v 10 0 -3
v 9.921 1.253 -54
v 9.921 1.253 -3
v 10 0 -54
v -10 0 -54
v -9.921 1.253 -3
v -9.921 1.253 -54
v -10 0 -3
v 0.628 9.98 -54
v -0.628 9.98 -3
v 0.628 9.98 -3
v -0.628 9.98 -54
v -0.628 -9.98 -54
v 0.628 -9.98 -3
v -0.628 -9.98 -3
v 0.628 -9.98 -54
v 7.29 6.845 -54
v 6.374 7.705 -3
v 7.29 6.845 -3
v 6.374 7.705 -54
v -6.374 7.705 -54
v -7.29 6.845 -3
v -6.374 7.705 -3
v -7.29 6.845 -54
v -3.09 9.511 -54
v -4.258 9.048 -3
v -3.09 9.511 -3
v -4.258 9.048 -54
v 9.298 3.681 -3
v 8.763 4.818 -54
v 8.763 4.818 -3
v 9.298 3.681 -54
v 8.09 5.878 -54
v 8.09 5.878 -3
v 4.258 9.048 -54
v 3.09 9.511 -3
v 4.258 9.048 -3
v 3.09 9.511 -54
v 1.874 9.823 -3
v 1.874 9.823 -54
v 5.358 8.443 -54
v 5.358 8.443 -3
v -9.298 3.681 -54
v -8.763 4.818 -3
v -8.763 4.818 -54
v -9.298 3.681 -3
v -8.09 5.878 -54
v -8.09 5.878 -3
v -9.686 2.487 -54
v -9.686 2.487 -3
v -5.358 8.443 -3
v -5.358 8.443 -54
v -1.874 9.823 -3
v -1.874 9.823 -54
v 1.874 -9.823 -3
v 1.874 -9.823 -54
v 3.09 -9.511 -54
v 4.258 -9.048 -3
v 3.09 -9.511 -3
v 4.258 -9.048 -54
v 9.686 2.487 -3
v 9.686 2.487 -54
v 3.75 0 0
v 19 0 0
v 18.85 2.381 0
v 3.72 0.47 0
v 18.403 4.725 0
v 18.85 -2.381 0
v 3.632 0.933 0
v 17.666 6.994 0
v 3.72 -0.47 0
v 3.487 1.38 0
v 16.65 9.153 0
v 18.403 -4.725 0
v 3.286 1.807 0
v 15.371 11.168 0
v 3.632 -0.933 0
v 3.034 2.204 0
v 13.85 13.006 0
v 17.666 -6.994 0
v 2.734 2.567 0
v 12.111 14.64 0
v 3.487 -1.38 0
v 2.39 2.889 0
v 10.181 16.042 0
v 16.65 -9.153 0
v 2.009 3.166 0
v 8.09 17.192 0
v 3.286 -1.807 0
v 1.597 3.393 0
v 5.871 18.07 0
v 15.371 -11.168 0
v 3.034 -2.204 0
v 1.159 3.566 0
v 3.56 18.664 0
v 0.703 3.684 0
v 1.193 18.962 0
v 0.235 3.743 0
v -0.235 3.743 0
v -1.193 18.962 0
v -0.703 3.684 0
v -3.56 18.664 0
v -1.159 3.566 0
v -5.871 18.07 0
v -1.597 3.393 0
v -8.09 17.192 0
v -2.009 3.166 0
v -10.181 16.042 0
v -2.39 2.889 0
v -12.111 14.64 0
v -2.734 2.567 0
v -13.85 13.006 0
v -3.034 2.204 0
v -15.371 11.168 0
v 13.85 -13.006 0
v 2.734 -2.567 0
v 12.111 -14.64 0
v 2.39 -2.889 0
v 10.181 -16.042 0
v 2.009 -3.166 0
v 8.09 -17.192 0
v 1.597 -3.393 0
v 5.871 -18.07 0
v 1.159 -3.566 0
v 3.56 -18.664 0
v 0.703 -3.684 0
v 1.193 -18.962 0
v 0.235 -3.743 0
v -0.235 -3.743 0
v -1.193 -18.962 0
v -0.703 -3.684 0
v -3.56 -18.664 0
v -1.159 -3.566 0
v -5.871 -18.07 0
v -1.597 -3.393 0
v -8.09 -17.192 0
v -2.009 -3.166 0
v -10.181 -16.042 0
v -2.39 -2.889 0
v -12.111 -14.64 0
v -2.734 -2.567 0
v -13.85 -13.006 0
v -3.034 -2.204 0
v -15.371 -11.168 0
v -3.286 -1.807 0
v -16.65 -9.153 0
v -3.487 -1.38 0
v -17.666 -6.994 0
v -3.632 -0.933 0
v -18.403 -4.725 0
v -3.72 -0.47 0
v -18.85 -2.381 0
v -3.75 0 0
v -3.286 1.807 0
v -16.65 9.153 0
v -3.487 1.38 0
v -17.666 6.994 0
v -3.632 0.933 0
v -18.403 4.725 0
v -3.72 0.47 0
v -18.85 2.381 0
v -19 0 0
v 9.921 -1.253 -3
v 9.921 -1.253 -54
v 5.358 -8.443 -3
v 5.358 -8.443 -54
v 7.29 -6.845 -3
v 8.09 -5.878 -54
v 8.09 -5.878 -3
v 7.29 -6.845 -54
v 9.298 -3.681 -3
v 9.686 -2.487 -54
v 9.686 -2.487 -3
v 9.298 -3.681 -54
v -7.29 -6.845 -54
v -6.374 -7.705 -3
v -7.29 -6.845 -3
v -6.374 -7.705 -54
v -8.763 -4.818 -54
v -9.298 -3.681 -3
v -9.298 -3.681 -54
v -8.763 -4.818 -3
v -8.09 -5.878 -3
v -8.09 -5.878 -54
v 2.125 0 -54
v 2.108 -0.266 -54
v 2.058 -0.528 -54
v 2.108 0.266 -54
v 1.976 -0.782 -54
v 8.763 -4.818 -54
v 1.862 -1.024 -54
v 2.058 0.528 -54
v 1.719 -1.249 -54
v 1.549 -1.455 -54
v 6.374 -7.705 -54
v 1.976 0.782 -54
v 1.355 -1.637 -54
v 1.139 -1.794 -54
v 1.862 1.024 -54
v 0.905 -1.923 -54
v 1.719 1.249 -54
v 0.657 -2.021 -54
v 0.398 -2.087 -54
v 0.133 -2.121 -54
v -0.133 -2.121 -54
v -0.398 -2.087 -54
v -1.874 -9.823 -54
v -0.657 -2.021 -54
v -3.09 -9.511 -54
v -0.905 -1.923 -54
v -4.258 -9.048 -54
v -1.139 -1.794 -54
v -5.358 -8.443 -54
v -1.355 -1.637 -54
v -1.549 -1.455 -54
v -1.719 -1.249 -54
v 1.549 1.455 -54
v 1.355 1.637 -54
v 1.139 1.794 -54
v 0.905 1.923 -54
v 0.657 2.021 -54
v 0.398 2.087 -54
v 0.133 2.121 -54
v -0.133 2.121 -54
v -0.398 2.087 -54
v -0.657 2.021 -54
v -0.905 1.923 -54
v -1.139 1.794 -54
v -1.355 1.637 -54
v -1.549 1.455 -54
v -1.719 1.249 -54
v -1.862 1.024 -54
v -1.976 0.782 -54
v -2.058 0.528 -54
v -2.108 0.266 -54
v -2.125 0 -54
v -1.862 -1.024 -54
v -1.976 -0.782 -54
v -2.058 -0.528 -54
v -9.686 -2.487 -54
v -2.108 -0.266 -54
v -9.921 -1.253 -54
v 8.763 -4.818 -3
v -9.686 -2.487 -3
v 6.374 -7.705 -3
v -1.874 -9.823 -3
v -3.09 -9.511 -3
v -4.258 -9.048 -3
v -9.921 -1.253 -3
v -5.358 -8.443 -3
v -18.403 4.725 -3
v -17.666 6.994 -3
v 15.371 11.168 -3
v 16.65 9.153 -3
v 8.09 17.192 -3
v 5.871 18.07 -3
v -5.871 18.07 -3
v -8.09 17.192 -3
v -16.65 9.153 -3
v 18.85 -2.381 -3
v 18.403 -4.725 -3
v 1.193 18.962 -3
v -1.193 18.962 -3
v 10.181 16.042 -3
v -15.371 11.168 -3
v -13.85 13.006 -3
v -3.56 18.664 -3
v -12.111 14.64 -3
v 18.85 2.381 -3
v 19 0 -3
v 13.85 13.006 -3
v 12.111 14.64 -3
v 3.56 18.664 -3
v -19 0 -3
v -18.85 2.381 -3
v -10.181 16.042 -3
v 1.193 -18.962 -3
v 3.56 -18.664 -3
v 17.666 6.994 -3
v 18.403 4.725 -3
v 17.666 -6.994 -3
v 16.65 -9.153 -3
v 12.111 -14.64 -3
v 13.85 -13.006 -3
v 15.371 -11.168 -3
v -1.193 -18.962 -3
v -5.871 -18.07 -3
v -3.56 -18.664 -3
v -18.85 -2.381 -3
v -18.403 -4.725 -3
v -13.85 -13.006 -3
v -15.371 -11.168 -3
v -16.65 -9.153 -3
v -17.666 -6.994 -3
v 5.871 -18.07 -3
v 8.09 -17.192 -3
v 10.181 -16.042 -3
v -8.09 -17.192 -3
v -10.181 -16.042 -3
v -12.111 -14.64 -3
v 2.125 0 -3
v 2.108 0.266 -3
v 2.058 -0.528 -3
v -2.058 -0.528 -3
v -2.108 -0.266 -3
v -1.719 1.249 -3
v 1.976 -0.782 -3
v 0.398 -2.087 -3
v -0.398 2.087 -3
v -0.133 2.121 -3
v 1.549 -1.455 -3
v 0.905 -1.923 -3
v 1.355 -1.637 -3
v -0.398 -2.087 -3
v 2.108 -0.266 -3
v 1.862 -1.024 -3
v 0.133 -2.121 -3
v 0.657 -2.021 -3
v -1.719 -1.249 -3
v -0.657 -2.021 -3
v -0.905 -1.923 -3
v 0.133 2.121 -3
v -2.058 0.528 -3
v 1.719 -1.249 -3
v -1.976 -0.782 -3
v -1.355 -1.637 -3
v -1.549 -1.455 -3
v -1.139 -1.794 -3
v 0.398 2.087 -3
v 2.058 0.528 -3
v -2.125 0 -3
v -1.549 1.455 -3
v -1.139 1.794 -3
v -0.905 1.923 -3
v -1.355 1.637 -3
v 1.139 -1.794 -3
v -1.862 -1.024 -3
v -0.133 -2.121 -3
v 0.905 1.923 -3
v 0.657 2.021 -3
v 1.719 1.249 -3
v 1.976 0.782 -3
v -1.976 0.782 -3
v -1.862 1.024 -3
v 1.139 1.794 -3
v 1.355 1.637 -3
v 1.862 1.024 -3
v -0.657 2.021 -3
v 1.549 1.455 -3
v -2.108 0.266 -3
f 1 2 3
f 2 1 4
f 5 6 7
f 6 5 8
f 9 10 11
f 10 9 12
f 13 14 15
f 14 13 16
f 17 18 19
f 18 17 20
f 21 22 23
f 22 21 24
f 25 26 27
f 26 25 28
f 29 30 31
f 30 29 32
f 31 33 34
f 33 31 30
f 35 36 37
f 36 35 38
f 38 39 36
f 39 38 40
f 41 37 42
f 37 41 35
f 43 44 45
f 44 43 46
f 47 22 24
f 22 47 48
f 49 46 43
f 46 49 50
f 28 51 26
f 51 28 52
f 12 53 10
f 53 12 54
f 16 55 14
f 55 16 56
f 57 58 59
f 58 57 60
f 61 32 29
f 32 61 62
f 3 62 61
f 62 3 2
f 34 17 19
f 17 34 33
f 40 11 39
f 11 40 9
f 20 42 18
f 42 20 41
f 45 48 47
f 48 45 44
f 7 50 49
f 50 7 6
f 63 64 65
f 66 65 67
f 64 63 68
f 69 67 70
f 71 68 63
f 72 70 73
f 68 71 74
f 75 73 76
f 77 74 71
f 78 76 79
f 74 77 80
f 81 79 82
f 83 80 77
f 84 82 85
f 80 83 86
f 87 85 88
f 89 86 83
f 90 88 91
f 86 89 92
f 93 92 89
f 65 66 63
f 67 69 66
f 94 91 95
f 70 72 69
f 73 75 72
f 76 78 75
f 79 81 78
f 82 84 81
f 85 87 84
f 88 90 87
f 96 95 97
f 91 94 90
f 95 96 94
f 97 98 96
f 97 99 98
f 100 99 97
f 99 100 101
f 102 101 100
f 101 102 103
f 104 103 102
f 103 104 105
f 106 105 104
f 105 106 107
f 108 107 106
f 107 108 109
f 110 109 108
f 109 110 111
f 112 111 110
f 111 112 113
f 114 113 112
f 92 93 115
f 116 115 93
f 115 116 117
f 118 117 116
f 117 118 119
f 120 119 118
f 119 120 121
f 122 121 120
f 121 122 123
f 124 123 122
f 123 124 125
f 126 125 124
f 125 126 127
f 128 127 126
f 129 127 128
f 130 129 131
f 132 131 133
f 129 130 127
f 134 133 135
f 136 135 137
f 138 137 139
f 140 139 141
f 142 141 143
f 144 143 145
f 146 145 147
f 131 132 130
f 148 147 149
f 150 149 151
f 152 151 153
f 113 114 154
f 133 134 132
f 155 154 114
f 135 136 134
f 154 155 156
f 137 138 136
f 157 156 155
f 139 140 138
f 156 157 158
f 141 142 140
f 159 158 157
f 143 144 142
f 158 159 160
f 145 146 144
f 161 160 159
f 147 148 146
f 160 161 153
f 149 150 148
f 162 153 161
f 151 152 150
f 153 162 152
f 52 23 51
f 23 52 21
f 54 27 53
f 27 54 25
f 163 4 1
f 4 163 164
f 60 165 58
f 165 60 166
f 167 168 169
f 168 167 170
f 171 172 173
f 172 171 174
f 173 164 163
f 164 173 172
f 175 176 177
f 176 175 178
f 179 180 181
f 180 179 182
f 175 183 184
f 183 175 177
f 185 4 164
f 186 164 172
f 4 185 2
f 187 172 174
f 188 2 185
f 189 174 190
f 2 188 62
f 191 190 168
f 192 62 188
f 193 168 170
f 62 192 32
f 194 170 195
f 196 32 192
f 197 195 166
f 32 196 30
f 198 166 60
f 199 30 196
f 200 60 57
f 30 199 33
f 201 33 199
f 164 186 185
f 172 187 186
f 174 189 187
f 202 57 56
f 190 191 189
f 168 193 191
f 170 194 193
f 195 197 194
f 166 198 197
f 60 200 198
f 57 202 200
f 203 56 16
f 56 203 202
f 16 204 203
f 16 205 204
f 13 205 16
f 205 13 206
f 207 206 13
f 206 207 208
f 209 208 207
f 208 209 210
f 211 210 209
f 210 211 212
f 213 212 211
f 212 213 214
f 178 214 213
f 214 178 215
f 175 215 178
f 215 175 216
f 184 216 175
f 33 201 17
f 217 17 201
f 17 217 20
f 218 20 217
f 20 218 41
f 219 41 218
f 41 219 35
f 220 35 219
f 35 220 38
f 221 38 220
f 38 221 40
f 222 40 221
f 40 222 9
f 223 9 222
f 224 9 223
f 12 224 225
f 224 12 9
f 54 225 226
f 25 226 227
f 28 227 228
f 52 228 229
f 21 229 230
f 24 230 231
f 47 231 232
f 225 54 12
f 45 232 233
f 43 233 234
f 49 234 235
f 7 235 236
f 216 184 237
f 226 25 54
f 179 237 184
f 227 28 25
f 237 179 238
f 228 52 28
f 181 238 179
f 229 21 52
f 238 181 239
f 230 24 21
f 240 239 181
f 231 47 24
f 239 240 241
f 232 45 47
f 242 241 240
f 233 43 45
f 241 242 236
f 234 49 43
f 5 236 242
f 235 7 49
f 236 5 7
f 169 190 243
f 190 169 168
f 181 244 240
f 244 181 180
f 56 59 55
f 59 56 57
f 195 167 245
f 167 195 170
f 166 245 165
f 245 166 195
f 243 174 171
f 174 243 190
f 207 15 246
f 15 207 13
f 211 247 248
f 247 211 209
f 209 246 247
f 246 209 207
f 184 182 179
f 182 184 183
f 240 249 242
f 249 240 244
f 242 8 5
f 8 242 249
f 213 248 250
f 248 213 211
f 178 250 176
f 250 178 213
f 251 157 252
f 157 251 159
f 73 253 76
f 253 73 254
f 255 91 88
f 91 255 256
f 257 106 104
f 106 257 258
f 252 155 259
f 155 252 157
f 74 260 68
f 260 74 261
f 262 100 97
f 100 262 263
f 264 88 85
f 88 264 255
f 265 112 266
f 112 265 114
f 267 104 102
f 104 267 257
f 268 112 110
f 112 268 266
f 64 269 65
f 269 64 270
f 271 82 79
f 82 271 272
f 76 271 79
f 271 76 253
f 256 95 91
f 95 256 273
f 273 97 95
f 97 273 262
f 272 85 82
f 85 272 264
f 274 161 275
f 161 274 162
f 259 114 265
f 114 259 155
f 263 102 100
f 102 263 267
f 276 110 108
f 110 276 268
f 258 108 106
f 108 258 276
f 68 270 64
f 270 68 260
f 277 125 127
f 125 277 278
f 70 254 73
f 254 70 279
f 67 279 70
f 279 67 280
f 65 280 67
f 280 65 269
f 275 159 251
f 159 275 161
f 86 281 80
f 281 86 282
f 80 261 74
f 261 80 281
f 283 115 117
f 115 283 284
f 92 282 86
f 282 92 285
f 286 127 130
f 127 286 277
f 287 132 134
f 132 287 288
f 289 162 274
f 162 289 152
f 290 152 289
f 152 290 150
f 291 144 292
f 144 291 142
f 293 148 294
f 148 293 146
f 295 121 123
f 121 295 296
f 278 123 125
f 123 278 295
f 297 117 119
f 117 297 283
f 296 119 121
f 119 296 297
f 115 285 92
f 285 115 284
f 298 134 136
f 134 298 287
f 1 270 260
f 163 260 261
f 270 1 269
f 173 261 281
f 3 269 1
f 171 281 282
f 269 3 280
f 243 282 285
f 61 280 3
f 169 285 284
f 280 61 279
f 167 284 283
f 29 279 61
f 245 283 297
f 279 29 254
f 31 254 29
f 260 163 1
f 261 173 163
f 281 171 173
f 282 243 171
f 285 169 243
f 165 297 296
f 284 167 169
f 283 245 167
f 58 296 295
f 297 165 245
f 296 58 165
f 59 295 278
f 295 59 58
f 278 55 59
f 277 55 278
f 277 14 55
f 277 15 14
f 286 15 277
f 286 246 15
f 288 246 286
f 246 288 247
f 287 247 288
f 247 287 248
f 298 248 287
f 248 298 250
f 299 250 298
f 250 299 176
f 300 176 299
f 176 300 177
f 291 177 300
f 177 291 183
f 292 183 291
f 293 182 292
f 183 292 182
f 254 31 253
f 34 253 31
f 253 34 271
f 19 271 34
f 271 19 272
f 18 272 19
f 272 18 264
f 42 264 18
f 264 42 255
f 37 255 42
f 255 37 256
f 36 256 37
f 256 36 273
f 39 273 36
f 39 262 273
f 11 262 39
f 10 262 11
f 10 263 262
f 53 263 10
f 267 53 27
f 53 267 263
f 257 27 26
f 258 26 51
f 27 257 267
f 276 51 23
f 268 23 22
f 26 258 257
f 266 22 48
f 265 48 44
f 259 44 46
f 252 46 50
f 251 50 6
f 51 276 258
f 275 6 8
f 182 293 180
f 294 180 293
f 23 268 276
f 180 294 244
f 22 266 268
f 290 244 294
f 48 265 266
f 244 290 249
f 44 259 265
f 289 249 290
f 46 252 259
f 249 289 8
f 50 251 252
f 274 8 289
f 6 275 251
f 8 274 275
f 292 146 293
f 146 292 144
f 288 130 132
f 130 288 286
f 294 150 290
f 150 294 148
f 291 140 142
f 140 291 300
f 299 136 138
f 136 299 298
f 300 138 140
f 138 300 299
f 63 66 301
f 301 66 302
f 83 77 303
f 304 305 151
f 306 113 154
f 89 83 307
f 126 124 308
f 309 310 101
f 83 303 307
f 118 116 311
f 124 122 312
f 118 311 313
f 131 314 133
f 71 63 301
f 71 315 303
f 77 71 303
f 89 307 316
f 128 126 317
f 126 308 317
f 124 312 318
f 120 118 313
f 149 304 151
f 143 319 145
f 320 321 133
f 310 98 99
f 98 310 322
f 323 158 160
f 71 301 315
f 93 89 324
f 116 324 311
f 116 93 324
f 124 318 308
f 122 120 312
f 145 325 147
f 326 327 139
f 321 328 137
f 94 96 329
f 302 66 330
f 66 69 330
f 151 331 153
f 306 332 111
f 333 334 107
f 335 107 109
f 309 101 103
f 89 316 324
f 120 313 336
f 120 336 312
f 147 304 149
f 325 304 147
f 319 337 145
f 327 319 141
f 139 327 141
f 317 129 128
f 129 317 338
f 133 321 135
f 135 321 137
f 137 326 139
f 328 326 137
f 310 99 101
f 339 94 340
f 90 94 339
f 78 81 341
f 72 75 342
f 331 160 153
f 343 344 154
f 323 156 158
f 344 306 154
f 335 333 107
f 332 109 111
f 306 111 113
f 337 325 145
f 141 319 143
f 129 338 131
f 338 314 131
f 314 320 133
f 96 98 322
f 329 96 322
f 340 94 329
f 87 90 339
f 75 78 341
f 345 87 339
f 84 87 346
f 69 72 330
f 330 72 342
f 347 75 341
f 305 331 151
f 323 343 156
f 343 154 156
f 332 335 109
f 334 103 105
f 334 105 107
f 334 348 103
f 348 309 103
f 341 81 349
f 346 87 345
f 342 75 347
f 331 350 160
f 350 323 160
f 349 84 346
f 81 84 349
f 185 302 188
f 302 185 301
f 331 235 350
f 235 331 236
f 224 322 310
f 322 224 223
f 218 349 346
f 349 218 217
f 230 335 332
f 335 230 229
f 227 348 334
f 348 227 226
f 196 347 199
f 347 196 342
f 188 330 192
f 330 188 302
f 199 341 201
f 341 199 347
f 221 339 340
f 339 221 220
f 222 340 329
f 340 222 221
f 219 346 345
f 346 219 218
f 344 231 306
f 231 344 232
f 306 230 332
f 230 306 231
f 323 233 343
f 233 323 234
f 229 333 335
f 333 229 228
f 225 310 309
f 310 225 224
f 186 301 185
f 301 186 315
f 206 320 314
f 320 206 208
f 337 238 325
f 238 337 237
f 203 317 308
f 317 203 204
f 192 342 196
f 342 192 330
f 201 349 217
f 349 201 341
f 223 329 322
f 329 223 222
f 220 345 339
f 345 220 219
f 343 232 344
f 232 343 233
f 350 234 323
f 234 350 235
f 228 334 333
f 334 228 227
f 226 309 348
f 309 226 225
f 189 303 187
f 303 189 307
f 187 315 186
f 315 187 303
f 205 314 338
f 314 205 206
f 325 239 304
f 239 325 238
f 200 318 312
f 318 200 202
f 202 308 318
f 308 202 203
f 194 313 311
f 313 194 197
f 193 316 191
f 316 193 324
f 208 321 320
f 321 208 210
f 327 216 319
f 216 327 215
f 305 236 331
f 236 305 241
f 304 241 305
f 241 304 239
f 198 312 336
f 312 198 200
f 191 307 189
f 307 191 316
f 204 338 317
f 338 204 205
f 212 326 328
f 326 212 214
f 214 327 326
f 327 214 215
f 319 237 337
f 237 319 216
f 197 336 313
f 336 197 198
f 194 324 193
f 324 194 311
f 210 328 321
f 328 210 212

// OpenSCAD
$fn = 50;


difference() {
	union() {
		translate(v = [0, 0, -54.0000000000]) {
			cylinder(h = 54, r = 10.0000000000);
		}
		translate(v = [0, 0, -3.0000000000]) {
			cylinder(h = 3, r = 19.0000000000);
		}
	}
	union() {
		translate(v = [0, 0, 0]) {
			rotate(a = [0, 0, 0]) {
				difference() {
					union() {
						#translate(v = [0, 0, -54.0000000000]) {
							cylinder(h = 54, r = 2.0000000000);
						}
						#translate(v = [0, 0, -3]) {
							cylinder(h = 3, r1 = 2.1250000000, r2 = 3.7500000000);
						}
						#translate(v = [0, 0, -54.0000000000]) {
							cylinder(h = 54, r = 2.1250000000);
						}
						#translate(v = [0, 0, -54.0000000000]) {
							cylinder(h = 54, r = 2.0000000000);
						}
					}
					union();
				}
			}
		}
	}
}
